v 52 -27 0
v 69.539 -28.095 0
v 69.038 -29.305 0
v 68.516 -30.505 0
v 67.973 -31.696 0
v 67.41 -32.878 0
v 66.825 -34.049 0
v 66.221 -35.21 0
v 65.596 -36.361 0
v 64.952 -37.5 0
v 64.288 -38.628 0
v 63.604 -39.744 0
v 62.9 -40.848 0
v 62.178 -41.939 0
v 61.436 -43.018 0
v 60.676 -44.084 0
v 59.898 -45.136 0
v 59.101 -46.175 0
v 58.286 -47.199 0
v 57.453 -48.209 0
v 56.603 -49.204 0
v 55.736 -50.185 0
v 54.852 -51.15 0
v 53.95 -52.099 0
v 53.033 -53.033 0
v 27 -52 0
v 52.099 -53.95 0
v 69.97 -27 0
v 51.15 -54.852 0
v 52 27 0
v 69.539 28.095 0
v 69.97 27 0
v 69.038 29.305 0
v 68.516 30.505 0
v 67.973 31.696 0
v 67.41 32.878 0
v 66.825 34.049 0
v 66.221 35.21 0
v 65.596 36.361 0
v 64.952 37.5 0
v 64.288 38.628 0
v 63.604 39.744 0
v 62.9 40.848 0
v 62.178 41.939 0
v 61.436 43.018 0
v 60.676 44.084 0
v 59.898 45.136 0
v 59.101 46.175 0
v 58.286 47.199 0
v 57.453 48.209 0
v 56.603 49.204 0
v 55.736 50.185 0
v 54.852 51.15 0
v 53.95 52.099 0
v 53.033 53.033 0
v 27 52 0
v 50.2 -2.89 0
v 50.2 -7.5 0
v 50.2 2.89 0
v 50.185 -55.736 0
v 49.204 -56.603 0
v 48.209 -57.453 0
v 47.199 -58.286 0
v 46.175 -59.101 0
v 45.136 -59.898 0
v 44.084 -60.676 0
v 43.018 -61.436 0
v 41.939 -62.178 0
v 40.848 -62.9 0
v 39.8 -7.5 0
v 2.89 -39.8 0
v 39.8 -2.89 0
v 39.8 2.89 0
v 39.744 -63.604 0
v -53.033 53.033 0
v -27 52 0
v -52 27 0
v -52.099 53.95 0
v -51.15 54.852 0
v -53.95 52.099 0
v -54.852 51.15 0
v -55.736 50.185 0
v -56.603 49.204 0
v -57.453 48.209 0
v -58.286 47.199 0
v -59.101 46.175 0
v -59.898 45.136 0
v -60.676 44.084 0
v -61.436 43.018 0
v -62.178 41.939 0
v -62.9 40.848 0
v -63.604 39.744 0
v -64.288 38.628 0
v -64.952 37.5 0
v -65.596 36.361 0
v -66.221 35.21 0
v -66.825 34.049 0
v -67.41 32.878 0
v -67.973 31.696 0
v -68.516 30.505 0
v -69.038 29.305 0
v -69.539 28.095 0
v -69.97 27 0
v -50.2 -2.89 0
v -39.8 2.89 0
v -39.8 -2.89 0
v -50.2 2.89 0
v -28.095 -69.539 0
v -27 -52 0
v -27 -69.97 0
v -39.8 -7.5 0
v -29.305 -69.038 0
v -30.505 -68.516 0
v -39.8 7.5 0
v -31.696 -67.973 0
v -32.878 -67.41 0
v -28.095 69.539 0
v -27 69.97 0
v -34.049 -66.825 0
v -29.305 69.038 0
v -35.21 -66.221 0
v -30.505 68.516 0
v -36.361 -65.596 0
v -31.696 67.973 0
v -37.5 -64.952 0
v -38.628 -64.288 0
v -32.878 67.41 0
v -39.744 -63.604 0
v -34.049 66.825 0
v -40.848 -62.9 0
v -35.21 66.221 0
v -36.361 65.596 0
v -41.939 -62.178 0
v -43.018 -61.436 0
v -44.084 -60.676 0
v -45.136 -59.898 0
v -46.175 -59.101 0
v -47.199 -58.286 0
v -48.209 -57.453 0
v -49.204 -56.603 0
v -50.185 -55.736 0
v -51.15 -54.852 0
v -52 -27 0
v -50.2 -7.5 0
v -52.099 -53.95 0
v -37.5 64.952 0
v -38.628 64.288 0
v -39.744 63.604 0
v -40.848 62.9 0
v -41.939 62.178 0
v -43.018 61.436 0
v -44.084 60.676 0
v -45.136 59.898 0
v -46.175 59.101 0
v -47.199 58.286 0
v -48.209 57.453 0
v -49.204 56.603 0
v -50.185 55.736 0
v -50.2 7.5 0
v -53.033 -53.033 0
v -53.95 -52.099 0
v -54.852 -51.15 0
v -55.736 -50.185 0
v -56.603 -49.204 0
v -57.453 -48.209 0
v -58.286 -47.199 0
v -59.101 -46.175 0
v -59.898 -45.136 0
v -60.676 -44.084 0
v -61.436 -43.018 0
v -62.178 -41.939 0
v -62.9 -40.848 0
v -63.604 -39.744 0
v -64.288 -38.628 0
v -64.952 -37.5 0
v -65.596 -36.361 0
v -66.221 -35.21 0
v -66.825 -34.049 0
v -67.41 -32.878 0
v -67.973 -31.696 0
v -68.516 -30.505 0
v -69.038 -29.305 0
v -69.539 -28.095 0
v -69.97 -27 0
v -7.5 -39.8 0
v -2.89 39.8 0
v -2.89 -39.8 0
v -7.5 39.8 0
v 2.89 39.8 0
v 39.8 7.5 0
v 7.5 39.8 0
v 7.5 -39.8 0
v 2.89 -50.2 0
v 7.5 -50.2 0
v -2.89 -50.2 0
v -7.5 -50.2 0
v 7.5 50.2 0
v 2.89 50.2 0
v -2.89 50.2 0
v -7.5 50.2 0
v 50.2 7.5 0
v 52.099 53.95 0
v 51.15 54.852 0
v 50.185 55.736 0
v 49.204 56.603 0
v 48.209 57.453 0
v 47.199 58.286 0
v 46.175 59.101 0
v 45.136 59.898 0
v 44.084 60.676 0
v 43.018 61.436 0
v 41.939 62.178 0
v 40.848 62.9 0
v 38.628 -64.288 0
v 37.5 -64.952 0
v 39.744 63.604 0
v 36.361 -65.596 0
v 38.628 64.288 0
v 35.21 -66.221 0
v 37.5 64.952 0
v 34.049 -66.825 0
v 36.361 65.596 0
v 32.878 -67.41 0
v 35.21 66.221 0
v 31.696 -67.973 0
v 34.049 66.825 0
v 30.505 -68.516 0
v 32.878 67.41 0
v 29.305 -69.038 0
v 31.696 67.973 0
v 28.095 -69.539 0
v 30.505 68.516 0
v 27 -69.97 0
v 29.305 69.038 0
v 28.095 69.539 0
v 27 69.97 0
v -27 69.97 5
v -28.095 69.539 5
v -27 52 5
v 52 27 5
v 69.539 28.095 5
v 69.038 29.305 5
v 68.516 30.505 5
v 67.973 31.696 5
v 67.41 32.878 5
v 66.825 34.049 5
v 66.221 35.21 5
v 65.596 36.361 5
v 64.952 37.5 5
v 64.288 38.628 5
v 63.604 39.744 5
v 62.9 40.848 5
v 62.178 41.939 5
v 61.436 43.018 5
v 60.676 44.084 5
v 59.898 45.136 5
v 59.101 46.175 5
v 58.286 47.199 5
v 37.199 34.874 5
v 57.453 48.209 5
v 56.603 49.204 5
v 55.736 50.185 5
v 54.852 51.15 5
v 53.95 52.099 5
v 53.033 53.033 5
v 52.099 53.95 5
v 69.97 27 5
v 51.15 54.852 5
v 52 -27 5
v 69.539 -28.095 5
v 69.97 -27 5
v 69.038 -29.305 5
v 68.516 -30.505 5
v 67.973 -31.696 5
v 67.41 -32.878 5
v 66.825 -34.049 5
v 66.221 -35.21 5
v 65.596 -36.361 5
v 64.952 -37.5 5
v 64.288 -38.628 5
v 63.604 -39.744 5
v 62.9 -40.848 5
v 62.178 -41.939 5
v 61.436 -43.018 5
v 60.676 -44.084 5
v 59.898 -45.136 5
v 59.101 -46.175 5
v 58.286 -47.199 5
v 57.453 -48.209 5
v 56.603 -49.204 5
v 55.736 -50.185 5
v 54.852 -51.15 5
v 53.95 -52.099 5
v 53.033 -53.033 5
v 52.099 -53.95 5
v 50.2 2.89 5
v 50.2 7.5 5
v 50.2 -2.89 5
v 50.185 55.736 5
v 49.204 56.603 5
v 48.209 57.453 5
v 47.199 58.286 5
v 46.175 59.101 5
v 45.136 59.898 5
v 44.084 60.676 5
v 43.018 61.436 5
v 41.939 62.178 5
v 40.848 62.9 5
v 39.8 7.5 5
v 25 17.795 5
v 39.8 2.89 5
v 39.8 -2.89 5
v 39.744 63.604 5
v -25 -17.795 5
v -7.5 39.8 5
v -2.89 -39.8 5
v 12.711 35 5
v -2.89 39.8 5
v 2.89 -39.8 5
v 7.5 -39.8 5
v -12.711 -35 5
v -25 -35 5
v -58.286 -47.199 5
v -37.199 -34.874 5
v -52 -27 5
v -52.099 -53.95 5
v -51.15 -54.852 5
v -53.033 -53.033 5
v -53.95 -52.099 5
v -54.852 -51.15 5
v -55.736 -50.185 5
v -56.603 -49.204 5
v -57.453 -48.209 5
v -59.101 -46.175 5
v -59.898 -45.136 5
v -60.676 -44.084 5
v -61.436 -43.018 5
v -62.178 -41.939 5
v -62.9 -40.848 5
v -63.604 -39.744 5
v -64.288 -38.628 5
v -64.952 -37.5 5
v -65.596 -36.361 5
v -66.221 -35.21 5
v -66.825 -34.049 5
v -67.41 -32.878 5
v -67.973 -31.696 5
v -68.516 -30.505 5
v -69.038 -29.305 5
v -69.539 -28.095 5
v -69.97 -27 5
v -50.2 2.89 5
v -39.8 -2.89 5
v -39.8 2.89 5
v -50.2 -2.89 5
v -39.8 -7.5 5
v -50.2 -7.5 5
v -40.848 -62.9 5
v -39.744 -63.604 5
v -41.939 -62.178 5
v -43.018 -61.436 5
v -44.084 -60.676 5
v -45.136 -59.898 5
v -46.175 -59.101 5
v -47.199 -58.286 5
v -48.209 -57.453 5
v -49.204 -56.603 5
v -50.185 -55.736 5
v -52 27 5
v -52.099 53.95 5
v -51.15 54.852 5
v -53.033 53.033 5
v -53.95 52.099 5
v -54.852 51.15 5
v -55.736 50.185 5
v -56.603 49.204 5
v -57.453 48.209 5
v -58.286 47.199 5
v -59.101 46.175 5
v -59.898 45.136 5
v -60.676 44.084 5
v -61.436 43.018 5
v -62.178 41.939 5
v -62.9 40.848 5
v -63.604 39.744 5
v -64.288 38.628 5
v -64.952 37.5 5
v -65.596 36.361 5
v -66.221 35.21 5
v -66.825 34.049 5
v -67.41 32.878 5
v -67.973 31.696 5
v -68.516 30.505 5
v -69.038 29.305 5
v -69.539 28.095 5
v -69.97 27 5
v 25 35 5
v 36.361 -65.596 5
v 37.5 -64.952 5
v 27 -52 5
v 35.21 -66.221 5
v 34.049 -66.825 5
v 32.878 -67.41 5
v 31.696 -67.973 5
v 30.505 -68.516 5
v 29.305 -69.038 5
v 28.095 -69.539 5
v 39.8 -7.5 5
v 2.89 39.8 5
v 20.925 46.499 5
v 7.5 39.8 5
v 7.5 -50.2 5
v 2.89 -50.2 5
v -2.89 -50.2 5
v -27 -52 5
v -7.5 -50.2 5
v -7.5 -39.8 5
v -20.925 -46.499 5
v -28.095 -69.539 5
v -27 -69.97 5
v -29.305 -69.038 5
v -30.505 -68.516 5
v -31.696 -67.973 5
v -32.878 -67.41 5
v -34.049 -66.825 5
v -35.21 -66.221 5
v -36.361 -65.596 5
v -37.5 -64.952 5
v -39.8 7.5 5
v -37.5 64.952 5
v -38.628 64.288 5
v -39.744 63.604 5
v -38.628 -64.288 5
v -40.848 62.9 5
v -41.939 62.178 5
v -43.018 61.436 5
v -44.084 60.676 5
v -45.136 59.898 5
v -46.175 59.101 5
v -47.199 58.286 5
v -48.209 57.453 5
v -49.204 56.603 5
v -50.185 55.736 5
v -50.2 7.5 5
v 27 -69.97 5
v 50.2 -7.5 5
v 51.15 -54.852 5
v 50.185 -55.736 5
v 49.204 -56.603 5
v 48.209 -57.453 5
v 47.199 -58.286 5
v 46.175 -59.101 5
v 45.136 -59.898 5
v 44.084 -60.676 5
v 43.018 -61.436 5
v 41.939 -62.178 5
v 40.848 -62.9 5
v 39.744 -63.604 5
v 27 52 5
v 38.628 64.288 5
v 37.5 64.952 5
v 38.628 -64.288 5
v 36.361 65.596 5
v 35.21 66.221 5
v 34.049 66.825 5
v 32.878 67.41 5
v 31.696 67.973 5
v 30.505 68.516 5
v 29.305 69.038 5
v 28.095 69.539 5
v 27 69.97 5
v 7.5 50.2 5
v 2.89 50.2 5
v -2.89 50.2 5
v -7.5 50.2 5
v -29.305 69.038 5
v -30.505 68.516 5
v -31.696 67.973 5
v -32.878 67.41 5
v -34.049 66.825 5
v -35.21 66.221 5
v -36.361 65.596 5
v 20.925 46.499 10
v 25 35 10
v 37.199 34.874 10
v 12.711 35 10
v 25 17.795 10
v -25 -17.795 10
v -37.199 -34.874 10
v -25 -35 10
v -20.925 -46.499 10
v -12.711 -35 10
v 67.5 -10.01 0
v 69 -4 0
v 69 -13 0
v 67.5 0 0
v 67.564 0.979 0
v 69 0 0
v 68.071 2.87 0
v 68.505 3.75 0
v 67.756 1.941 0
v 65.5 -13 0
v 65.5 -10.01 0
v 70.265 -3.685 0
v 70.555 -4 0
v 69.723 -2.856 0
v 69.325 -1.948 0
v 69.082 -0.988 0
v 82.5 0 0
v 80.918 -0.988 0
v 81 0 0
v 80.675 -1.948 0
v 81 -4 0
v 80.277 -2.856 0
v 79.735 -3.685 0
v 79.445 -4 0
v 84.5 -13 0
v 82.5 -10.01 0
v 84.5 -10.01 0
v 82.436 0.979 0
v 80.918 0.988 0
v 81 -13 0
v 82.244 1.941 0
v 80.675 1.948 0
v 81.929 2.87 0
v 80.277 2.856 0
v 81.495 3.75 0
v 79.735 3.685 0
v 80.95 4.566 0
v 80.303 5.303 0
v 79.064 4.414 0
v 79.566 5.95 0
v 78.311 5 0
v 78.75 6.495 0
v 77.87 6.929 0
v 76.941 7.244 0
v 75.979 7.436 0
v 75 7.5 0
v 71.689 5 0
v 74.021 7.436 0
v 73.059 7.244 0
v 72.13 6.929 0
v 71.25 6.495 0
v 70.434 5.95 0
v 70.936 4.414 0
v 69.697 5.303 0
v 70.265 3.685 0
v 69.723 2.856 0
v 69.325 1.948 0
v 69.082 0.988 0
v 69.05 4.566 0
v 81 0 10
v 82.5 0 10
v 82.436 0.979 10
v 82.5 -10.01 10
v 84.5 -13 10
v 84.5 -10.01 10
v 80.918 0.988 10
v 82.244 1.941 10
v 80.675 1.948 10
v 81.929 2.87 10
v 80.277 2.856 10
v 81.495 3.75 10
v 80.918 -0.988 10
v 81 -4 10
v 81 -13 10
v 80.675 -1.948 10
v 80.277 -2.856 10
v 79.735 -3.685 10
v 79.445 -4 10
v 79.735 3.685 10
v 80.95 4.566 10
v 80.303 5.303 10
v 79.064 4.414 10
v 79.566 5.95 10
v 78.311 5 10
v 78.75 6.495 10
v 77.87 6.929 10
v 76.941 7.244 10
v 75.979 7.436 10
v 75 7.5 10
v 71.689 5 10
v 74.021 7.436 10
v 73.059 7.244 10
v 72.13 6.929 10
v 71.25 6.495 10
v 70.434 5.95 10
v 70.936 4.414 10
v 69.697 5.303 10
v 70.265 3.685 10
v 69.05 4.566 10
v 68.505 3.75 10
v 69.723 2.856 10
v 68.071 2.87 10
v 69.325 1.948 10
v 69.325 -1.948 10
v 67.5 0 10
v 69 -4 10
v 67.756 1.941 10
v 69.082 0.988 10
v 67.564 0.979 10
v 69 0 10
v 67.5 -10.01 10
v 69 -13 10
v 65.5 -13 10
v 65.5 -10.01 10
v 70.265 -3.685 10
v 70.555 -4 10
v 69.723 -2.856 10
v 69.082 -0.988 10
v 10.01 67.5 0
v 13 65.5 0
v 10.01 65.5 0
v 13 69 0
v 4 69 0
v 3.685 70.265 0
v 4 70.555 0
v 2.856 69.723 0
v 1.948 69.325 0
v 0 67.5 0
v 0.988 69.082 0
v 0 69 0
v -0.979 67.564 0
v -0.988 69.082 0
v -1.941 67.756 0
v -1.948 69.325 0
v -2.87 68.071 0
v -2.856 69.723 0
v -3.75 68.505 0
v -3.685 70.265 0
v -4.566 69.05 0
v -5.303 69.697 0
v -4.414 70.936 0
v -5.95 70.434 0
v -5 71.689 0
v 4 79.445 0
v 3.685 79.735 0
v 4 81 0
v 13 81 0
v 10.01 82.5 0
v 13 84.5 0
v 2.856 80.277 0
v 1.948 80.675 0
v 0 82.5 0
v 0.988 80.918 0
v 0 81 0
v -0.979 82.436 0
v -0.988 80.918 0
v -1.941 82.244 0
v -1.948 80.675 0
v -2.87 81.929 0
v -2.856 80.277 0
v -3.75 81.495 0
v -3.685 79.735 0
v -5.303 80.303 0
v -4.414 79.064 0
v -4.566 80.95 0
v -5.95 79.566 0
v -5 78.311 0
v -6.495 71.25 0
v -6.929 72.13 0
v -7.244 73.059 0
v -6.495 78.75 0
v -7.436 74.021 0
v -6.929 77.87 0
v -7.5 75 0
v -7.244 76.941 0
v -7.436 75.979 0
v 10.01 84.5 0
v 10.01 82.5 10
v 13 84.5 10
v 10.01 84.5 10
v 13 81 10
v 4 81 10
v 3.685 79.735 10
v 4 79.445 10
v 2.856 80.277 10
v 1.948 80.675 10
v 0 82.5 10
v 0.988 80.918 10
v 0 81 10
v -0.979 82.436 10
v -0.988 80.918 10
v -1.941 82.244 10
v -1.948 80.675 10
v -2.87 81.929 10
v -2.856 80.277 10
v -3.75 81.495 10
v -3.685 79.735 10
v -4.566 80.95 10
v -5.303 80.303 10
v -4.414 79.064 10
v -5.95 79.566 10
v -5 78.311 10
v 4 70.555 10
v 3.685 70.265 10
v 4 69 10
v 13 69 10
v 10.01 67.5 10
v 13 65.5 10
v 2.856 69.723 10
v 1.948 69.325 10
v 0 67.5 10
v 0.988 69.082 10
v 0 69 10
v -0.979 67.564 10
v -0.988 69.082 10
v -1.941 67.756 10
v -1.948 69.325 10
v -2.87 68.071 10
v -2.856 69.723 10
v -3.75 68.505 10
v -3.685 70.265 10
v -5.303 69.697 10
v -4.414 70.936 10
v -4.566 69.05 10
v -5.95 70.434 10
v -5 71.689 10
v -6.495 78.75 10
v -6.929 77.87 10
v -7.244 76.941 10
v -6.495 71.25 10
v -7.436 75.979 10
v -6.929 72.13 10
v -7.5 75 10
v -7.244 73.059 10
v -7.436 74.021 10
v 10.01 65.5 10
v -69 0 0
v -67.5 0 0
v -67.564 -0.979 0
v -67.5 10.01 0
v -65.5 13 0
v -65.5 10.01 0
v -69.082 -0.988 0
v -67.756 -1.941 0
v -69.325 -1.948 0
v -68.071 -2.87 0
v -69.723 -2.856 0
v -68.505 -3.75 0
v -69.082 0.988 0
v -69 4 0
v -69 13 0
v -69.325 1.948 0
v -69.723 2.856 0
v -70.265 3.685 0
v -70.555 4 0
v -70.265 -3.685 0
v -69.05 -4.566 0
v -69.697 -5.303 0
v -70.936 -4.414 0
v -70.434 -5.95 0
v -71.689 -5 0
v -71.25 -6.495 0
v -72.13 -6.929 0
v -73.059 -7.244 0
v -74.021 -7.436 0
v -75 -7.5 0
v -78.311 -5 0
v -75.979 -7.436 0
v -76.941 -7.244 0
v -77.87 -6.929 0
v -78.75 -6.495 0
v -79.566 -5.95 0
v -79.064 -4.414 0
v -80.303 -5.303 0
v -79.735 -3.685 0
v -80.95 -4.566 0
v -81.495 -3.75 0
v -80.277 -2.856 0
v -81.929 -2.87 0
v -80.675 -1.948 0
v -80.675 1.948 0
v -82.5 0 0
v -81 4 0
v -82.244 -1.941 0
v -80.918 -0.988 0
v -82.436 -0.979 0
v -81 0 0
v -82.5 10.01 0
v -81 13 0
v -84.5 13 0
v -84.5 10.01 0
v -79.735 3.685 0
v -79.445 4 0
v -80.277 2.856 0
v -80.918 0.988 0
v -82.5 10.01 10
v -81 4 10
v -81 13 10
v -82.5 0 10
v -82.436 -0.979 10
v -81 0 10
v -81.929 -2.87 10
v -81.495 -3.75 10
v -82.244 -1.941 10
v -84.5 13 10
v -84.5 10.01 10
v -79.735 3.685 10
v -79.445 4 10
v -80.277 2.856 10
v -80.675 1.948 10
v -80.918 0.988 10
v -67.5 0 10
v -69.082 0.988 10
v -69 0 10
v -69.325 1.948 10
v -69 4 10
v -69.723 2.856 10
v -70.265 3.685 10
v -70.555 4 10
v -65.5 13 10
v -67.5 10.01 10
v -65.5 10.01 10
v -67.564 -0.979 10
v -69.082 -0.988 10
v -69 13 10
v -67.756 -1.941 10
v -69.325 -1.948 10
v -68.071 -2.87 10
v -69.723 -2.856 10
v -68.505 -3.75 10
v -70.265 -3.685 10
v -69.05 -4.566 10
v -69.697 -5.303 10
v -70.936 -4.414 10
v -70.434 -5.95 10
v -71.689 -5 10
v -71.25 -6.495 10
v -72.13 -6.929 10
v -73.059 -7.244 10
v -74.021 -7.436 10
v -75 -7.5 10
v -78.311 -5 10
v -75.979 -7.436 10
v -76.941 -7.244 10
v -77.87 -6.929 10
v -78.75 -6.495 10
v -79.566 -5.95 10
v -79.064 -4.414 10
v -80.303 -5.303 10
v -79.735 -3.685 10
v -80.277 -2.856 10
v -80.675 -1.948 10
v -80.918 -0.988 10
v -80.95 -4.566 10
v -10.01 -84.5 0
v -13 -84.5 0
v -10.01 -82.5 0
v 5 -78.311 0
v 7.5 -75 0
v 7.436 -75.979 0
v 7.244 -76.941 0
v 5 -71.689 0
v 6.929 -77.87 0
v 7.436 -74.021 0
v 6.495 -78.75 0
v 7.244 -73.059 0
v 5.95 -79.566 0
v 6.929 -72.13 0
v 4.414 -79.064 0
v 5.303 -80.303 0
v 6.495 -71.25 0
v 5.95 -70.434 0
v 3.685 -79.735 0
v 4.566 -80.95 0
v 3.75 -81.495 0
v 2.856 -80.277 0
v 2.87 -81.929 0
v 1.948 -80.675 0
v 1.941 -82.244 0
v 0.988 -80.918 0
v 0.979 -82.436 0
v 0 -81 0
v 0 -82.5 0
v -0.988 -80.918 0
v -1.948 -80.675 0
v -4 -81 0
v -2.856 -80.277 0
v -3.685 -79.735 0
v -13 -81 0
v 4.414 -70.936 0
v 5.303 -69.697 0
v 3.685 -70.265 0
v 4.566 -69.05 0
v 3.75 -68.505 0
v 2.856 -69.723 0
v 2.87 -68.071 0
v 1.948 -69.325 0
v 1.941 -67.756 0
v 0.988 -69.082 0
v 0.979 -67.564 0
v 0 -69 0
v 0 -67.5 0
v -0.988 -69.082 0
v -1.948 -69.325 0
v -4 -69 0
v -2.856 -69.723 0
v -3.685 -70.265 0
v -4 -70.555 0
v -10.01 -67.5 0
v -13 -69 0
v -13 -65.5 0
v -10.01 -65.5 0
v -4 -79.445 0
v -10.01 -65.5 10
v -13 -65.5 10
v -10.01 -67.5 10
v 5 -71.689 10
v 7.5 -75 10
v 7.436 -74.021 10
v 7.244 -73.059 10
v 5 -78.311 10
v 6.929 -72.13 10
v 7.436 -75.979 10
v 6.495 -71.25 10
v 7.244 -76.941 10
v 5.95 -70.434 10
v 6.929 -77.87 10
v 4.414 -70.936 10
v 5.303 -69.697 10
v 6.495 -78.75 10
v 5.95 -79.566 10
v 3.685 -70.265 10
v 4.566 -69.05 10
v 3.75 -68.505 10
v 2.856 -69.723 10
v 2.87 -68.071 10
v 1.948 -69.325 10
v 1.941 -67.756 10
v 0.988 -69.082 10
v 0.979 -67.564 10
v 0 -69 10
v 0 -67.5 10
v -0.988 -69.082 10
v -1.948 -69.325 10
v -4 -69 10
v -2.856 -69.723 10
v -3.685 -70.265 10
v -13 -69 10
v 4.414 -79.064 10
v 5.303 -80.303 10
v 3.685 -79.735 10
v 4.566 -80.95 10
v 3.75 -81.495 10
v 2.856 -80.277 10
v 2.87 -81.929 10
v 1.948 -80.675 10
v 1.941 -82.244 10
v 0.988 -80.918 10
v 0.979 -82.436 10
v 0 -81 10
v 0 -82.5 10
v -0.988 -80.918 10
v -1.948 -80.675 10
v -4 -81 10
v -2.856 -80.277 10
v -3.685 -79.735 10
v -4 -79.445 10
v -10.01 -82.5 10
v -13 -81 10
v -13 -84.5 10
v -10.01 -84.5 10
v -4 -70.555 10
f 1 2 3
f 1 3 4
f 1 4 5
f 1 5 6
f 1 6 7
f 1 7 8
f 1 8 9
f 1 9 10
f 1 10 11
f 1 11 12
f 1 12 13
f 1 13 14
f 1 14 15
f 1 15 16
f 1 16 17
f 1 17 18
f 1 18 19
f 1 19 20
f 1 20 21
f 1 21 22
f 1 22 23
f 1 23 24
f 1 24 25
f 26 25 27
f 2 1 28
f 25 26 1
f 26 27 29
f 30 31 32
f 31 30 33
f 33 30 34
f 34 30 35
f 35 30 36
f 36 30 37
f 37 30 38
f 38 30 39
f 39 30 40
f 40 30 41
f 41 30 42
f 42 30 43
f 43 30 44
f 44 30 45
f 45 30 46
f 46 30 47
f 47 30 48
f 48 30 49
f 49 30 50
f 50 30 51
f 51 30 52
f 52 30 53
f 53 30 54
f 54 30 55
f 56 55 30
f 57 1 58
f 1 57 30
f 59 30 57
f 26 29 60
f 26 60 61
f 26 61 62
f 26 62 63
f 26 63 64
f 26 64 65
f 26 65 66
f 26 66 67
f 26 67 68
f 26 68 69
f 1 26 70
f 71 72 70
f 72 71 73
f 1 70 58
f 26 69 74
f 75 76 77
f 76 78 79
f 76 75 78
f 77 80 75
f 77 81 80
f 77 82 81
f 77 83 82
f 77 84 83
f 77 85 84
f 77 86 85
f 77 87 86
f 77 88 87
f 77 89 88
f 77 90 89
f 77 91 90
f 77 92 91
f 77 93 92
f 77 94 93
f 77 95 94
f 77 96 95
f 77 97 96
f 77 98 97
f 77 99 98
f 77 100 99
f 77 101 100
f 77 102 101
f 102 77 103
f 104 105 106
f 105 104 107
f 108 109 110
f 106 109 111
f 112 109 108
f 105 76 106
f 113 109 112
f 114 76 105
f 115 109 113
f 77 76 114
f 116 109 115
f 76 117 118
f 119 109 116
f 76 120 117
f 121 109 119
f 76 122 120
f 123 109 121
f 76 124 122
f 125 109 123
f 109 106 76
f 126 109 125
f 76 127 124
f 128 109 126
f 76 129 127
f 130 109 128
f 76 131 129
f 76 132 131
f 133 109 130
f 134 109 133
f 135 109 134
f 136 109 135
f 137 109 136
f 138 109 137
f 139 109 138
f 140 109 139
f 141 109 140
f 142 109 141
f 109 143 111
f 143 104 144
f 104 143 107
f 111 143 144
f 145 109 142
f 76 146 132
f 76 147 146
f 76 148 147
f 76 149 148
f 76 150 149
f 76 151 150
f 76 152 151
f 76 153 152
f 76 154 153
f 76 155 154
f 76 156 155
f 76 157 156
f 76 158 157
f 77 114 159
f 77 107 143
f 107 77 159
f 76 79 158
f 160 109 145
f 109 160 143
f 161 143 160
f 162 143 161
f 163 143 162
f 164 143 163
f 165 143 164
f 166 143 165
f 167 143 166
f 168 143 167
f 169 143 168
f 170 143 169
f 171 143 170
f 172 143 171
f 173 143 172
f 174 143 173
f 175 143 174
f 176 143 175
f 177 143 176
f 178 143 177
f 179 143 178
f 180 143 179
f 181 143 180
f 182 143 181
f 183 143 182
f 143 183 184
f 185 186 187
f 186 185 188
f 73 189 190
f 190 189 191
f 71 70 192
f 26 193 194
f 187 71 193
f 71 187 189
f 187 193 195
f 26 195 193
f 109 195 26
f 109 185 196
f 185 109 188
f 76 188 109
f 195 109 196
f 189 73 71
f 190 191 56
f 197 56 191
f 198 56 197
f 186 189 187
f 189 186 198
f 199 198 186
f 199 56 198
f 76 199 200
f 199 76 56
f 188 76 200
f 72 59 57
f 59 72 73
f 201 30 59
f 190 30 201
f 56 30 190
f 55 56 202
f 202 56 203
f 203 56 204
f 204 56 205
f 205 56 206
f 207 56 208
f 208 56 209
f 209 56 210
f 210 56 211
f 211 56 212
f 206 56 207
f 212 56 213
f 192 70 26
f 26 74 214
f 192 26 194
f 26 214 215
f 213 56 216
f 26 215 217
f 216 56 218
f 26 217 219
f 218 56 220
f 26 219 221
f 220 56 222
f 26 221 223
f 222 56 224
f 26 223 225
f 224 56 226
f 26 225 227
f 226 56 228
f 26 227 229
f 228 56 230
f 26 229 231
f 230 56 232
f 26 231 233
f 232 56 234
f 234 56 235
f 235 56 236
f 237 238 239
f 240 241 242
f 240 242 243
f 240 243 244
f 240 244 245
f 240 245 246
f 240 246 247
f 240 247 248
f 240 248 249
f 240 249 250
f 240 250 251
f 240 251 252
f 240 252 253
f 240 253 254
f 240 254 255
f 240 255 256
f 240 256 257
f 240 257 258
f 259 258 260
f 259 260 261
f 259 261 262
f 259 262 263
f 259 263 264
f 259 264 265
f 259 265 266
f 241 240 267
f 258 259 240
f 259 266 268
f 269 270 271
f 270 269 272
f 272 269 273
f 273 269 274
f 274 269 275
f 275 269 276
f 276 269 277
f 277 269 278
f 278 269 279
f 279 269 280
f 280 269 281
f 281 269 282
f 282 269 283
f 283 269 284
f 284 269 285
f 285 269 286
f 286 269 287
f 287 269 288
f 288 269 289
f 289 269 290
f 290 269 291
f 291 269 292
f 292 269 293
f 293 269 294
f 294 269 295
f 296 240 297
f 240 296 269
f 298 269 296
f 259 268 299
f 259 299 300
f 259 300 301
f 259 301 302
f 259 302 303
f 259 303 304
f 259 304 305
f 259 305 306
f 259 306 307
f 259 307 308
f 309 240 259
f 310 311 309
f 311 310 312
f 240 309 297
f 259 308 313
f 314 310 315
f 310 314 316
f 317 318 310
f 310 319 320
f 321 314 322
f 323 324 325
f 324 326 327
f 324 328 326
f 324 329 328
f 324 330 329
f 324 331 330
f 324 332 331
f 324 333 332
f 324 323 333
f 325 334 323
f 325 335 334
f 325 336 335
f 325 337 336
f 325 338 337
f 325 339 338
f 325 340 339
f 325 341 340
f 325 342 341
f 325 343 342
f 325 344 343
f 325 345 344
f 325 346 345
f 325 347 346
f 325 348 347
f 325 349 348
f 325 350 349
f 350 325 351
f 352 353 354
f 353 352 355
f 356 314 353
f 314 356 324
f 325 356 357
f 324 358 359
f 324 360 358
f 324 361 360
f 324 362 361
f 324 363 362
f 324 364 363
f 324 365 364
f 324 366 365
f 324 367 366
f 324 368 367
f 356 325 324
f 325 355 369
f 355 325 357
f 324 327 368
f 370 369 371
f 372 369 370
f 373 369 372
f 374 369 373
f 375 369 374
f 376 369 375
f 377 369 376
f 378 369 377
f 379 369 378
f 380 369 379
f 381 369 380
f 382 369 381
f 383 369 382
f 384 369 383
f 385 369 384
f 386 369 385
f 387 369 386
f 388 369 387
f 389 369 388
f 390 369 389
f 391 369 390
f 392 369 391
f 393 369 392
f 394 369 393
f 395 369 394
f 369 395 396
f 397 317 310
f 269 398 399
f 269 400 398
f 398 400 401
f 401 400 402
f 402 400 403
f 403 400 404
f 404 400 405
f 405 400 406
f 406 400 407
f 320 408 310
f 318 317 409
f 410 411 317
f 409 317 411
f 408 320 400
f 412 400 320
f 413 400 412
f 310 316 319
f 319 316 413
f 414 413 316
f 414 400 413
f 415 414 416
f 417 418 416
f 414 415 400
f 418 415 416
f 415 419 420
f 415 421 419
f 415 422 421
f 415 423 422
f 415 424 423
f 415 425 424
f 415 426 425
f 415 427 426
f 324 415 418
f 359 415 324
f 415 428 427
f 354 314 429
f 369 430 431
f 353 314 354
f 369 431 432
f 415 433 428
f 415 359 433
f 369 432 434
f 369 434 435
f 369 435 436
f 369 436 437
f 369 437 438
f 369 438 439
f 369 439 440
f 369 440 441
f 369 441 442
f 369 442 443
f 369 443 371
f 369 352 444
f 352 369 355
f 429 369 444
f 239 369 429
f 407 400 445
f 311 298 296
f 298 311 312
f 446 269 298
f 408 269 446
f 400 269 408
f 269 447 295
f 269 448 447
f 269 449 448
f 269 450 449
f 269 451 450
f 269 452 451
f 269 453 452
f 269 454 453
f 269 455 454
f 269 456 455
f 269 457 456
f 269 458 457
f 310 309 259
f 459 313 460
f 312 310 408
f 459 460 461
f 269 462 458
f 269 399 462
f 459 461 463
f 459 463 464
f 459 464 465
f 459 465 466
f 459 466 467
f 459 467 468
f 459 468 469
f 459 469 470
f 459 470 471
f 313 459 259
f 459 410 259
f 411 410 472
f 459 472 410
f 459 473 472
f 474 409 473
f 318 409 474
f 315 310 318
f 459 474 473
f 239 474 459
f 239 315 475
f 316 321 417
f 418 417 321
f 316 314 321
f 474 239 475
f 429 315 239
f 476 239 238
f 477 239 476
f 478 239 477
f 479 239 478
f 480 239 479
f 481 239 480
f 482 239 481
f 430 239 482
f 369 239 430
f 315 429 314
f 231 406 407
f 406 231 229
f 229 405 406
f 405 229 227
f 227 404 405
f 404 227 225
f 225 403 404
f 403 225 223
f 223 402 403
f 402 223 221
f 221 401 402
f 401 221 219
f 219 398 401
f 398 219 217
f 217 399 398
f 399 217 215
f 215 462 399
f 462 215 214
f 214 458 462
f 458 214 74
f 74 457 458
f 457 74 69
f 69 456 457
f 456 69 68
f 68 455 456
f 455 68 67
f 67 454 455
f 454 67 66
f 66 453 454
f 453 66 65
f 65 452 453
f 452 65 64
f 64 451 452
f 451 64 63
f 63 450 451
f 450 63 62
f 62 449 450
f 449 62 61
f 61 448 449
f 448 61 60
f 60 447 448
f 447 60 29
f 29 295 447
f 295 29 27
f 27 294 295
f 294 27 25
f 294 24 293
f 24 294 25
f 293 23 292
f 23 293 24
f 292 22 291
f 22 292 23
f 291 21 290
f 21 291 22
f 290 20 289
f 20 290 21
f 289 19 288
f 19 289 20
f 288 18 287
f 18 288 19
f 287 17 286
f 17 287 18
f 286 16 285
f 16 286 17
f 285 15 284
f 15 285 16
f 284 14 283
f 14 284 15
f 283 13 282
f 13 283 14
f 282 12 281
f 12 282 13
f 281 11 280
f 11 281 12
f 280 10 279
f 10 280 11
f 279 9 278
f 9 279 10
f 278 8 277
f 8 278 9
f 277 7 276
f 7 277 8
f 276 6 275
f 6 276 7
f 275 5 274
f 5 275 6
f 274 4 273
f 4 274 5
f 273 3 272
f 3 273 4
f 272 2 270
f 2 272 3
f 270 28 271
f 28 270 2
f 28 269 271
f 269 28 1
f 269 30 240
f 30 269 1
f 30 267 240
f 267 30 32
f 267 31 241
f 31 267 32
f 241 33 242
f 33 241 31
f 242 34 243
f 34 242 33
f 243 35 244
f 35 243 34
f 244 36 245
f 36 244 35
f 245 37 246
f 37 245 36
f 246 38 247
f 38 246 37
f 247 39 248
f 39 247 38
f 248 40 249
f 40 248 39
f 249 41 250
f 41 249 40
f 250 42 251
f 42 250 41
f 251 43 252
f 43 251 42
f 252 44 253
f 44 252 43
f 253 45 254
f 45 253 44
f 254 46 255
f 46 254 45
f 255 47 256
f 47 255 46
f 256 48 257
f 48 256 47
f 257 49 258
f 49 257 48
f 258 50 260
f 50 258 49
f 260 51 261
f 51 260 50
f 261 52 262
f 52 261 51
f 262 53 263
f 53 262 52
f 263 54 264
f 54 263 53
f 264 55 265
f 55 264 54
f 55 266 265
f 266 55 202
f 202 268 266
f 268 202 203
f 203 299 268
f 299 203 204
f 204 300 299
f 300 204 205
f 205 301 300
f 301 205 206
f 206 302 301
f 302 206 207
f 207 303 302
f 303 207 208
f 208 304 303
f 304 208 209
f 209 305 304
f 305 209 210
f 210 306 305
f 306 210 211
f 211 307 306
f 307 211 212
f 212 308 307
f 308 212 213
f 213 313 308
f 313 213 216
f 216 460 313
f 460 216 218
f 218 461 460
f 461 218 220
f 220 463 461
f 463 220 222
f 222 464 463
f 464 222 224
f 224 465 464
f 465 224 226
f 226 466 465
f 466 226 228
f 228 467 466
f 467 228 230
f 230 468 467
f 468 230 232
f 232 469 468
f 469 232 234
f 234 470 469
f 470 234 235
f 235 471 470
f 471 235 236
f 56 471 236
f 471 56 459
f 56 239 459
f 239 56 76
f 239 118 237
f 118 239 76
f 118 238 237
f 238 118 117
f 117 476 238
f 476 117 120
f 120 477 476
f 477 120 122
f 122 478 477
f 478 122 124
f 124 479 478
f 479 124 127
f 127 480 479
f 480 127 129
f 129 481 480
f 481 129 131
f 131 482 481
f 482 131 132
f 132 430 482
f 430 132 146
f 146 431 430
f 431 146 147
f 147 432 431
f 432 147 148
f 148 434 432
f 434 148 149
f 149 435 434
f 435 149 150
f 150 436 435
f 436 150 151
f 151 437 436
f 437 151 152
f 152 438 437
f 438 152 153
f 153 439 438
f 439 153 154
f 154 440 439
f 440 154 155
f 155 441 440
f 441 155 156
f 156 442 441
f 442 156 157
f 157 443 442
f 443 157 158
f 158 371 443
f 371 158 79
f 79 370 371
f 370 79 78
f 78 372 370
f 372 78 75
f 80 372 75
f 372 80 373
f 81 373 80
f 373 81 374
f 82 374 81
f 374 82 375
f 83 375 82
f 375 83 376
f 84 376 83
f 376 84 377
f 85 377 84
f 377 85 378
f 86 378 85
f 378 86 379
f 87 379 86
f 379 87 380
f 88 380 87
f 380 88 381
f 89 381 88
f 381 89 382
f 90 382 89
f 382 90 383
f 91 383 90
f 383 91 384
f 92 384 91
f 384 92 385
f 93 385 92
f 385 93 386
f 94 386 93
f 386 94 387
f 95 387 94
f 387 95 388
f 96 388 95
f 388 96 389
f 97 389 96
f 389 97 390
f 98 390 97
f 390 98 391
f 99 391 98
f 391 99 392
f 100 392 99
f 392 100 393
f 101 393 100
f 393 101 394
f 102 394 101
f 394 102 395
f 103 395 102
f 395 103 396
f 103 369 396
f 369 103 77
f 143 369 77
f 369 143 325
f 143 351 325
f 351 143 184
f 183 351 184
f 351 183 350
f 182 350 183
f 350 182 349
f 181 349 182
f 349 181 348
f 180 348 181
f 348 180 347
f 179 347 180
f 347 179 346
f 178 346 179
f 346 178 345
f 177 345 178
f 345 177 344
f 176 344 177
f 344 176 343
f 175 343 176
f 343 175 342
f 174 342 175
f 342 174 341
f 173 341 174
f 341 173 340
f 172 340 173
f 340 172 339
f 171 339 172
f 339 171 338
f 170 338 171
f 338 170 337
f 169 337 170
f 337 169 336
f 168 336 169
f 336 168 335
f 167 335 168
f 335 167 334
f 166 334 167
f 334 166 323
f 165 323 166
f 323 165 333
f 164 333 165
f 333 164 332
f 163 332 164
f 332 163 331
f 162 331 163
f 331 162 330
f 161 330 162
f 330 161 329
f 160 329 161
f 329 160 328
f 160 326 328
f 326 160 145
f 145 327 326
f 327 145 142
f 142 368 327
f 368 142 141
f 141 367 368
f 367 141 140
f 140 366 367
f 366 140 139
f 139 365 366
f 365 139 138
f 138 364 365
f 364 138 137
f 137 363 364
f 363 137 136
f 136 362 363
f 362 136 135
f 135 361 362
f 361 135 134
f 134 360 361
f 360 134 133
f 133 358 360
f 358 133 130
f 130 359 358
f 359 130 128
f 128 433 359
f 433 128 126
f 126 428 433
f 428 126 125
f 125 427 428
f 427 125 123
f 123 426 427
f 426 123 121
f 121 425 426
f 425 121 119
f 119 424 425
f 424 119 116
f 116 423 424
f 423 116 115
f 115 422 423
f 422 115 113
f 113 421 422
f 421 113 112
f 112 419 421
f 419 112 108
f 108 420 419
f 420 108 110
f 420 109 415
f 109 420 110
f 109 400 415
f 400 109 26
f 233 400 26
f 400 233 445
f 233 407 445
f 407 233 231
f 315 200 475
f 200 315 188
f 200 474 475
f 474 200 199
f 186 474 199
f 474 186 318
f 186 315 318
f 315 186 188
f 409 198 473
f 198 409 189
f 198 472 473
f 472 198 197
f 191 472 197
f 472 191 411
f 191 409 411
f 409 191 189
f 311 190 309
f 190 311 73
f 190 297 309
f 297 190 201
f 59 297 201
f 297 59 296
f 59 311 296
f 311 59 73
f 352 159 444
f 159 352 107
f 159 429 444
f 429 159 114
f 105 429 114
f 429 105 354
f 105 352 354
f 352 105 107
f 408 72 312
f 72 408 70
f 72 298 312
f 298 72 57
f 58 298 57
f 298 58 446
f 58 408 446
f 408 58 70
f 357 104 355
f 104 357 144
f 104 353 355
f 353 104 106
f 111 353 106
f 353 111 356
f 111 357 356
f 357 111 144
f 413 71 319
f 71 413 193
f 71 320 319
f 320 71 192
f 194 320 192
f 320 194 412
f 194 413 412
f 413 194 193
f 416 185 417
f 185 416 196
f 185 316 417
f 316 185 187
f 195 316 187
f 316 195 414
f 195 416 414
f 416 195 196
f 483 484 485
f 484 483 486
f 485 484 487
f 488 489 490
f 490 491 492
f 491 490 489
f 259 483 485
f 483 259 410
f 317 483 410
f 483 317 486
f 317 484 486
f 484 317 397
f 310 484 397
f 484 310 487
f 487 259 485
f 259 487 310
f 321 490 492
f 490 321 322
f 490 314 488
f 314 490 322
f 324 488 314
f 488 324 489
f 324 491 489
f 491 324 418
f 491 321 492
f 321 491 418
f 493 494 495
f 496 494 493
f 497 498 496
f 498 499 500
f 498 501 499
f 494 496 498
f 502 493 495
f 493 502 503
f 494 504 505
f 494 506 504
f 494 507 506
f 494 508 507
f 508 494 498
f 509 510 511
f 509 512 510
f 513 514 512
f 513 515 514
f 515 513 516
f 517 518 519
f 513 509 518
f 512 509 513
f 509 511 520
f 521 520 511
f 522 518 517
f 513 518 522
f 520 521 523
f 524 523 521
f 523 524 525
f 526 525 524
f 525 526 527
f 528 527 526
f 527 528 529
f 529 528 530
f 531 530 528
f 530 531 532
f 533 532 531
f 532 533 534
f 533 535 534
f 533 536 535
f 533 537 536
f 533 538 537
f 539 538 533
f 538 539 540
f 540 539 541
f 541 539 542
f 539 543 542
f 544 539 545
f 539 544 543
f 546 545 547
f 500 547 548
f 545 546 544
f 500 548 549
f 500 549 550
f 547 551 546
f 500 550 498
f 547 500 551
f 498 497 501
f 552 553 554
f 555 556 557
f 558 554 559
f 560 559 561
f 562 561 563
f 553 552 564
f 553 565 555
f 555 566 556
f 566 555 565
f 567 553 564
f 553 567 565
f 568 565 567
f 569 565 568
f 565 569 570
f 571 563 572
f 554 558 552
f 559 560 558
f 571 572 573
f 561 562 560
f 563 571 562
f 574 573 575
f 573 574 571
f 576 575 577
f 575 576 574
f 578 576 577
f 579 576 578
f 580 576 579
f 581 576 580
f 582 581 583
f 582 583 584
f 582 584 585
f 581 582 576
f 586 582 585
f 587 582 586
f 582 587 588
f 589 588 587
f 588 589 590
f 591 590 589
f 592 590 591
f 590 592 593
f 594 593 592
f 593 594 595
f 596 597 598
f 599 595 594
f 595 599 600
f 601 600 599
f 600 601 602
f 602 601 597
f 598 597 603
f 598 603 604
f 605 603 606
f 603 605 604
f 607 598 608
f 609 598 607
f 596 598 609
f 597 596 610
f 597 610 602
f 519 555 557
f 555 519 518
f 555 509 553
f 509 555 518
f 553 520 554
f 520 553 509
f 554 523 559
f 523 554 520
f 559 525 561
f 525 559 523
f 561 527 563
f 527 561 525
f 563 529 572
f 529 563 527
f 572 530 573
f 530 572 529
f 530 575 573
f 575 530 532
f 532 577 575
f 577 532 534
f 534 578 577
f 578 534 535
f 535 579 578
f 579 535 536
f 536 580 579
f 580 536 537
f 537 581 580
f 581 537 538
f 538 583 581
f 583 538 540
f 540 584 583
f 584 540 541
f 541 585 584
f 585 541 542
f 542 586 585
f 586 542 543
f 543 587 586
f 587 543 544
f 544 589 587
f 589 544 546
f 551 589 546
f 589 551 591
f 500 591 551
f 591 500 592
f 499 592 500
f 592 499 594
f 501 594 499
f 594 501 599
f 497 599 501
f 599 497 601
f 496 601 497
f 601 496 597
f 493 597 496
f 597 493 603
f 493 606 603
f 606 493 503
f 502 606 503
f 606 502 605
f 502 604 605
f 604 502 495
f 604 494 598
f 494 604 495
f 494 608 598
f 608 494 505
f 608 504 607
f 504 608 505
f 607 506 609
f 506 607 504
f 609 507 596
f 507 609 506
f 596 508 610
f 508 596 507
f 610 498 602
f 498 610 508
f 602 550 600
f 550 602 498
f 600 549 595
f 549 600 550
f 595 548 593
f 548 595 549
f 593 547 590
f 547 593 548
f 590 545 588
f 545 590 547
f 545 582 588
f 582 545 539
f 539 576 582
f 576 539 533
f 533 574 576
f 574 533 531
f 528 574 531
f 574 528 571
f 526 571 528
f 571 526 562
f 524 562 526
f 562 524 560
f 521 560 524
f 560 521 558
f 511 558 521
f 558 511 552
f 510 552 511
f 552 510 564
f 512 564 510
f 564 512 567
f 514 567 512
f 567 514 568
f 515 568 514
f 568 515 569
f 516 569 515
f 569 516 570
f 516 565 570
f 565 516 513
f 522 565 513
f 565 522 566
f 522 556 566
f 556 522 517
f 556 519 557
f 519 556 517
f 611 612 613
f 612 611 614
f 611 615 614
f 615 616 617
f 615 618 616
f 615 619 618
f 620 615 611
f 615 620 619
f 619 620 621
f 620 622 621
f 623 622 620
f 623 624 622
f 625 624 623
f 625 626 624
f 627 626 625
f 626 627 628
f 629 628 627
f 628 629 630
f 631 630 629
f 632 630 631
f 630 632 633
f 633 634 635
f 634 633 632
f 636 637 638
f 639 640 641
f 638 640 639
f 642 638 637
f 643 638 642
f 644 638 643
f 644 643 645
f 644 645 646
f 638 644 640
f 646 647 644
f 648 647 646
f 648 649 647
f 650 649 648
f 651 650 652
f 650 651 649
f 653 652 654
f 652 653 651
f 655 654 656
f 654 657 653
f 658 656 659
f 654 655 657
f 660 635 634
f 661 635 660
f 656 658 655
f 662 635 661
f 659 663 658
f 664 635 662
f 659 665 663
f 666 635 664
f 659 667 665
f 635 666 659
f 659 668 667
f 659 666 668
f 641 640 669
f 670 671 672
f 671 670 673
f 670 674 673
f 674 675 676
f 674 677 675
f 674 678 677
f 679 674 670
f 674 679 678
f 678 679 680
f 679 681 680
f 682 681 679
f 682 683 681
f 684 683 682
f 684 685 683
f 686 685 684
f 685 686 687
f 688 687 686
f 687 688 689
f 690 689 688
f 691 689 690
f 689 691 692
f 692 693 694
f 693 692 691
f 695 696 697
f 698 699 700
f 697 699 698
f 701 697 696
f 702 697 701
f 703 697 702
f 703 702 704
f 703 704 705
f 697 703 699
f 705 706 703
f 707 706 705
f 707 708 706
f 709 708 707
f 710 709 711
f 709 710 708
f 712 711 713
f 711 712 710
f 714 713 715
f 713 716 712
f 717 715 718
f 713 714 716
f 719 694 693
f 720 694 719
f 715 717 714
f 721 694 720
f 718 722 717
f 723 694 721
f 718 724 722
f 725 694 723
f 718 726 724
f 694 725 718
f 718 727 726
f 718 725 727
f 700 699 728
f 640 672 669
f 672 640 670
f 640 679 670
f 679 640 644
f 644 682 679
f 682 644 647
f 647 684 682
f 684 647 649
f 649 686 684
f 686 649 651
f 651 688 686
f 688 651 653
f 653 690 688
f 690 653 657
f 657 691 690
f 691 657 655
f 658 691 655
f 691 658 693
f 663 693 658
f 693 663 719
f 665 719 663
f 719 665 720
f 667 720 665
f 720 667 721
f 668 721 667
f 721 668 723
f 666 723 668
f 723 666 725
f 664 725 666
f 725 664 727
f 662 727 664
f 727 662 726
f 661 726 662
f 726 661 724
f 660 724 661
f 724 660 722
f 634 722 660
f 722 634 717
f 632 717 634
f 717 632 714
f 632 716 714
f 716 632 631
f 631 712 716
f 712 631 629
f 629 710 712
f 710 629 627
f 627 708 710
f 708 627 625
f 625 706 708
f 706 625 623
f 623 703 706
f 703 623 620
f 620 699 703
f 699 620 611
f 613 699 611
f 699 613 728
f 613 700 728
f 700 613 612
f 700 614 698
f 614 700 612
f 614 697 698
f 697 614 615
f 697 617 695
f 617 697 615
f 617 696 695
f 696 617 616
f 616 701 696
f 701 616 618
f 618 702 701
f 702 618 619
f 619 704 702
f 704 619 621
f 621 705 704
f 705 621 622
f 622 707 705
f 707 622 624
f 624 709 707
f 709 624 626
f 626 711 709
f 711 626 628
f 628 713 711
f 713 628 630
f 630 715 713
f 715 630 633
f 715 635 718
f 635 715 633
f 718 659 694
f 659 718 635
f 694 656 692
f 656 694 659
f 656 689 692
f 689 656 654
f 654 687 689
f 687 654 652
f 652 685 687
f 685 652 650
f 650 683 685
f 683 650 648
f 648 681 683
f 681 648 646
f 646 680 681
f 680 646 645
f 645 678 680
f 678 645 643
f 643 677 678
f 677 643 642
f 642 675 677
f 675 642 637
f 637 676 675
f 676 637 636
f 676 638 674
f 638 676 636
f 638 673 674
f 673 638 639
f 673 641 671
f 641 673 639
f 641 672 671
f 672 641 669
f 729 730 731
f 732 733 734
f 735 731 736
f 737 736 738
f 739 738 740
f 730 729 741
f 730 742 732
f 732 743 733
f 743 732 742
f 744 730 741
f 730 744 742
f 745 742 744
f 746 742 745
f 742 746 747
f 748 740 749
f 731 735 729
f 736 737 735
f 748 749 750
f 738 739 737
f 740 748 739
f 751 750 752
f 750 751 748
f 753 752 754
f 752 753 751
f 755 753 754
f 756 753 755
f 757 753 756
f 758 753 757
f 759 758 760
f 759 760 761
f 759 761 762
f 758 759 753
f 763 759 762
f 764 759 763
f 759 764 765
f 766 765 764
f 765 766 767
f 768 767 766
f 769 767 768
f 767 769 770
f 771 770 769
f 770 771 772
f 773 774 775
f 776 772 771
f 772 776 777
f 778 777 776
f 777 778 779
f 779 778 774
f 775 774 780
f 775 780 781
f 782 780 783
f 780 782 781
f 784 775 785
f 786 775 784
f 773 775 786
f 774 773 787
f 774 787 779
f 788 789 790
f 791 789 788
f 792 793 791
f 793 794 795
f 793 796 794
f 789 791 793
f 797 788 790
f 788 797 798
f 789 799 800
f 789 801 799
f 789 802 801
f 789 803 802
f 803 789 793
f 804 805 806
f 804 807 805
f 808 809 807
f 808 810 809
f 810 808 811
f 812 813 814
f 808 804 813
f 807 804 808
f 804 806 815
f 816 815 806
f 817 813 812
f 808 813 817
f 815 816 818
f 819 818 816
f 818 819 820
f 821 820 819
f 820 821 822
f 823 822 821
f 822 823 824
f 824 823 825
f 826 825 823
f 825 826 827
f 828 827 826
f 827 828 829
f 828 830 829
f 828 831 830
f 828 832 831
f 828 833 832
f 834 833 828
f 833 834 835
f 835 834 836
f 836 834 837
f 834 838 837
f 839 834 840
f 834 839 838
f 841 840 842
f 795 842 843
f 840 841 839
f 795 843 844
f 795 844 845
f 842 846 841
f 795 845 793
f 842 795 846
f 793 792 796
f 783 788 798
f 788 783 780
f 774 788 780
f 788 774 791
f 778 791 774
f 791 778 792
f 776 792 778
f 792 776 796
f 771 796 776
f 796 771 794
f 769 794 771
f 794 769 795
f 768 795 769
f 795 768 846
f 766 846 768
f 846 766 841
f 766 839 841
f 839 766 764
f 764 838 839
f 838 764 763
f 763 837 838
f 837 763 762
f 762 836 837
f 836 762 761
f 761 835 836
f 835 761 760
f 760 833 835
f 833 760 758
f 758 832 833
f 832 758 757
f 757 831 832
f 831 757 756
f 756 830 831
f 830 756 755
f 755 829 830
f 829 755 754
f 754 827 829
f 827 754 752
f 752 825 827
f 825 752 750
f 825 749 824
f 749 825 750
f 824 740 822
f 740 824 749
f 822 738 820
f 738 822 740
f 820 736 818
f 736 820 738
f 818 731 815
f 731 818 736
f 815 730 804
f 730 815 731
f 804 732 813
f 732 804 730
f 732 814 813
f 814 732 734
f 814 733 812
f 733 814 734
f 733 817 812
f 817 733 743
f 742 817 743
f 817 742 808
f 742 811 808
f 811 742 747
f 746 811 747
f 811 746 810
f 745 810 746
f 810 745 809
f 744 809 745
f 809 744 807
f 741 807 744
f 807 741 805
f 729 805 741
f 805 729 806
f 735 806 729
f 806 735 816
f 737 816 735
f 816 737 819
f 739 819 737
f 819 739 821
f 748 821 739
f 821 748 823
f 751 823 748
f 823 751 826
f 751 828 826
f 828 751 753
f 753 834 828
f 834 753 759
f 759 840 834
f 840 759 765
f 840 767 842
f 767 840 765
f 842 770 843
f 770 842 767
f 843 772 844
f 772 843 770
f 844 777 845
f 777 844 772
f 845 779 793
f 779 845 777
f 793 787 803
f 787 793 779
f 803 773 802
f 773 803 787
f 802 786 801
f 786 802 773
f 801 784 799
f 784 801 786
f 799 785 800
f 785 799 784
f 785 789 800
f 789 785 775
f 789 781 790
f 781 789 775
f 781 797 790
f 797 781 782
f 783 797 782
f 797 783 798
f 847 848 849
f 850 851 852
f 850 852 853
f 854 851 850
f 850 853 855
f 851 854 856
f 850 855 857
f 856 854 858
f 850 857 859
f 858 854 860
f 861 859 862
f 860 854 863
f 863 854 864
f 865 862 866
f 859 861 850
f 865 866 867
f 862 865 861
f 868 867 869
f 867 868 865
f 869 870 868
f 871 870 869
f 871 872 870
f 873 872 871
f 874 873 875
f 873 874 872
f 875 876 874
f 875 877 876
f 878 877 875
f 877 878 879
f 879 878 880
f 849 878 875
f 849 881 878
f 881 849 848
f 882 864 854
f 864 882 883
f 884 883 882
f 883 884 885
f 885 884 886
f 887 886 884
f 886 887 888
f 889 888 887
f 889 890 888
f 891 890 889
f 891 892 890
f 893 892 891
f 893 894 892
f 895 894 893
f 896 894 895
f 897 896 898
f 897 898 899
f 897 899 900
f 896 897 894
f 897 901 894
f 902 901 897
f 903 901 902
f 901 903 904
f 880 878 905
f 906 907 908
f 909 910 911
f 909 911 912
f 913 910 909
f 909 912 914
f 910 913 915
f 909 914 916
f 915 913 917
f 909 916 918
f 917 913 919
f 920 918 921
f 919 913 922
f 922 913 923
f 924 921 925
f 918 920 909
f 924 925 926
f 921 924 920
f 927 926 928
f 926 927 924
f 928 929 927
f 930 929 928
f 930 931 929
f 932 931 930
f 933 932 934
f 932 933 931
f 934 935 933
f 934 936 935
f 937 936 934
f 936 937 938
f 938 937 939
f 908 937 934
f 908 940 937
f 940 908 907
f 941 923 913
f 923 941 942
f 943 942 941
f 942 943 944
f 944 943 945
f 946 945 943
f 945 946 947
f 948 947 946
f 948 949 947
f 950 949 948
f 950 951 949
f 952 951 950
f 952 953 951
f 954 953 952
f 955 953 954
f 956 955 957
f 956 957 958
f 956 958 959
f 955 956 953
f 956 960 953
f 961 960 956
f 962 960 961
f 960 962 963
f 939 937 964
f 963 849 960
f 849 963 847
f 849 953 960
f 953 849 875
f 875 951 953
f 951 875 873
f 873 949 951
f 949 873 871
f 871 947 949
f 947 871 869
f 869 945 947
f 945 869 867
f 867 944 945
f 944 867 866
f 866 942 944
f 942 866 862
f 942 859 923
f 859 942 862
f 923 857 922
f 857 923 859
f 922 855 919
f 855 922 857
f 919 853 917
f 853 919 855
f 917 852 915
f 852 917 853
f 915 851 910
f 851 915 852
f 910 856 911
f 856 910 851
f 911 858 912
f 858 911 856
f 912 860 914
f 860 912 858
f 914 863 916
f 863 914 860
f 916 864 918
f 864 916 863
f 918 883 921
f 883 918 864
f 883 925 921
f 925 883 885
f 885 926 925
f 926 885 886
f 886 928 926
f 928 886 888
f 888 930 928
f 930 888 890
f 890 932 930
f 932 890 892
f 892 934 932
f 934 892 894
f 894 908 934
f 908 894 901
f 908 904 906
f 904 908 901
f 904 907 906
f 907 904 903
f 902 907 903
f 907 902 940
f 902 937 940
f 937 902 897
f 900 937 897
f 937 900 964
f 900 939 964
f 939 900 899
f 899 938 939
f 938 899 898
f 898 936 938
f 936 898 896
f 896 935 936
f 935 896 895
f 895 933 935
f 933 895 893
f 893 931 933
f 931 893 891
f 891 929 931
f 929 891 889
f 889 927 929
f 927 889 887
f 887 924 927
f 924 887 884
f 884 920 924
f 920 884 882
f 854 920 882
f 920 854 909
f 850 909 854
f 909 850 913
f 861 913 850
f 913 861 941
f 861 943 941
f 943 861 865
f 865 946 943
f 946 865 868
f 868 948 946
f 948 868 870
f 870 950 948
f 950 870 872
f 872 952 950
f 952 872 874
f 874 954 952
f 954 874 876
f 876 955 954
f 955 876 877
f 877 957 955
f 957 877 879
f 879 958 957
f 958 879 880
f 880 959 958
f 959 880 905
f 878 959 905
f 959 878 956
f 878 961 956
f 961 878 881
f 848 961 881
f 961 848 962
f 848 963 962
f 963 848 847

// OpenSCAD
// file: lib/arc.scad
/*
r: radius
b: thickness
t: theta
*/
module arc(r,b,t){
	//$fs=b*.2;
	a=(r+b)*2;
	rot=function(t)[cos(t)*a,sin(t)*a];
	intersection(){
		difference(){circle(r+b/2);circle(r-b/2);}
		polygon([
			for(i=[0:floor(abs(t)/120)])rot(120*i*sign(t)),
			rot(t),[0,0]
		]);
	}
}

// distance arc
module darc(d,b,t){
	//$fs=b*.2;
	r=sqrt(d*d/(2*(1-cos(t))));
	if(r!=1/0) translate([d,0])rotate((180-abs(t))/2*sign(t))translate([-r,0])arc(r,b,t);
	else translate([0,-b/2])square([d,b]);
	//circle(d=b);
	//translate([d,0])circle(d=b,$fs=b*.2);
}
// file: omni2.scad
include <lib/fn.scad>;
include <lib/arc.scad>;
$fa=1;$fs=1;

d=50;n=5;
roller_arc_ratio=.55;
roller_r_max=10.5/2;
roller_shaft_r=1.75/2;// d=1.75mm filament
roller_shaft_r_asobi=.4;
plate2floor=1;
roller_gap_x=1;
roller_gap_y=.3;
shaft_snap_l=2.5;
shaft_snap_asobi=.15;

hub_d_out=20;
hub_d_in=17;
hub_gap=.5;
hub_key=1.5;
hub_key_asobi=.1;
hub_spoke=.5;
hub_shaft_scale=1.07;


rot=smoothstep(0,.9,$t)*-360;
print=$preview?smoothstep(.3,.9,$t):1;

roller_r_min=roller_r_max-(1-sin(90-180/n*roller_arc_ratio))*d/2;
roller_h=sin(180/n*roller_arc_ratio)*d;
echo(min=roller_r_min);
//assert(roller_r_max*.55<=roller_r_min);

module shaft2d(hane){
	intersection(){
		circle(d=3,$fn=32);
		translate([.5,0])square([3,3],center=true);
	}
	if(hane)translate([-1+.2/2,0])square([.2,3.5],center=true);
}
module motor(){
	linear_extrude(4)shaft2d();
	scale(-1){
		linear_extrude(1)circle(d=4);
		translate([0,0,1])linear_extrude(9.15)square([12,10],center=true);
		translate([0,0,10.15])linear_extrude(15.1)intersection(){circle(d=12);square([12,10],center=true);}
	}
}

%motor();


module r2d(dr=0,dh=0,shaft=roller_shaft_r+roller_shaft_r_asobi){
	l=4;
	_d=d+dr*2;
	ta=asin((roller_h+dh*2)/_d);
	polygon([
		[shaft,sin(ta)*-_d/2],
		for(i=[-l:l])let(t=i/l*ta)[cos(t)*_d/2-d/2+roller_r_max,sin(t)*_d/2],
		[shaft,sin(ta)*_d/2]
	]);
}
module r2d2(dr=0,dh=0){r2d(dr,dh,-.01);scale(-1)r2d(dr,dh,0);}
module roller(){
	translate([0,0,mix(0,roller_h/2,print)])
	rotate([mix(90,0,print),0,0]){
		rotate_extrude()r2d();
		%rotate_extrude()r2d(.5);
	}
}

module p2d(wire){intersection(){
	difference(){
		circle(r=d/2-plate2floor);
		for(i=[0:n-1]){
			rotate(360*(i+.5)/n)translate([d/2-roller_r_max,0])r2d2(roller_gap_x,roller_gap_y);
		}
	}
}}
module plate(){
	difference(){
		union(){
			intersection(){
				linear_extrude(roller_r_min+roller_shaft_r*sqrt(3)/2)p2d(0);
				rotate_extrude(){
					translate([d/2-roller_r_max,roller_r_min])circle(r=roller_r_max,$fn=4);
					square([d/2-roller_r_max,roller_r_min*2]);
				}
			}
			linear_extrude(roller_r_min+roller_r_max)circle(r=d/2-roller_r_max*2-roller_gap_x);
		}
		// hub key
		translate([0,0,-.05/2])linear_extrude(roller_r_min+roller_r_max+.05,twist=90/n){
			circle(d=hub_d_out);
			rotate(180/n)translate([-(hub_d_out/2+hub_key/2),0])square(hub_key+hub_key_asobi*2,center=true);
		}
		// shaft
		translate([0,0,roller_r_min])for(i=[0:n-1])
			rotate(360*(i+.5)/n)translate([d/2-roller_r_max,0,0])
				rotate([90,0,0])cylinder(r=roller_shaft_r+shaft_snap_asobi,h=roller_h+(roller_gap_y+shaft_snap_l)*2,center=true,$fn=16);
	}
}

module hub(){
	linear_extrude((roller_r_min+roller_r_max)*2,twist=180/n)difference(){
		union(){
			circle(d=hub_d_out);
			translate([-hub_d_out/2,0])square([hub_key*2,hub_key],center=true);
		}
		circle(d=hub_d_in);
		rotate(45/n)translate([hub_d_in/2-1,-hub_gap/2])square([2+(hub_d_out-hub_d_in)/2,hub_gap]);
	}
	linear_extrude(roller_r_min+roller_r_max)difference(){
		union(){
			circle(3);
			for(i=[0:n-1])rotate(360*(i+.5)/n)translate([3-hub_spoke/2,-hub_spoke/2])darc(hub_d_in/2-3+hub_spoke,hub_spoke,180,cap=true);
		}
		scale(hub_shaft_scale)shaft2d(1);
		translate([0,-hub_gap/2])square([3,hub_gap]);
	}
}

module omni_main(){
	rotate(rot){
		for(i=[0:2-1])
			rotate([mix(180*i,0,print),0,mix(180/n*i,0,print)])
			translate([mix(0,-d/2,print),mix(0,(i+.5)*d,print),mix(-(roller_r_max+roller_r_min),0,print)])
			plate();
		for(i=[0:2*n-1])let(j=floor(i/n),k=i%n)
			rotate(mix(360/n*(k+.5*(j+1)),0,print))
			translate([mix(d/2-roller_r_max,roller_r_max,print),mix(0,roller_r_max*2.5*(i+.5),print),mix((j*2-1)*roller_r_max,0,print)])
			roller();
		rotate([mix(180,0,print),0,0])
			translate([mix(0,-(hub_d_out/2+hub_key),print),mix(0,-(hub_d_out/2+hub_key),print),(roller_r_min+roller_r_max)*mix(-1,0,print)])
			hub();
	}
}

module omni_bb_2d(p=0){
	translate([-p,-(d+2*p)/2])square([4*roller_r_max+2*p,d+2*p]);
}
module omni_ph(flip_motor=0){
	rotate([0,90,0]){
		cylinder(d=d+2,h=4*roller_r_max);
		translate([0,0,2*roller_r_max])rotate([flip_motor?180:0,0,90])motor();
	}
}

module jigu(){
	linear_extrude(roller_h+shaft_snap_l*2+roller_gap_y)difference(){
		square(5,center=true);
		circle(roller_shaft_r+roller_shaft_r_asobi);
	}
	linear_extrude(roller_h)translate([0,5/2])difference(){
		translate([-5/2,0])square([5,19]);
		translate([-3/2,(19-17)/2])square([3,17]);
	}
}

omni_main();
//jigu();
// file: lib/fn.scad
// from glsl
clamp=function(x,a,b)min(max(x,a),b);
saturate=function(x)clamp(x,0,1);
mix=function(a,b,x)a*(1-x)+b*x;
smoothstep=function(a,b,x)let(x=saturate((x-a)/(b-a)))x*x*(3-2*x);

// rad deg conv
r2d=function(x)x/PI*180;
d2r=function(x)x*PI/180;
// rad fn
_sin=function(x)sin(r2d(x));
_cos=function(x)cos(r2d(x));
_tan=function(x)tan(r2d(x));
_atan=function(x)d2r(atan(x));

rot=function(p,t)let(s=_sin(t),c=_cos(t))[c*p.x-s*p.y,s*p.x+c*p.y];

module skew(xy=0,xz=0,yx=0,yz=0,zx=0,zy=0){
	matrix=[
		[1,tan(xy),tan(xz),0],
		[tan(yx),1,tan(yz),0],
		[tan(zx),tan(zy),1,0],
		[0,0,0,1]
	];
	multmatrix(matrix)
	children();
}
// main file
include <lib/fn.scad>
use <omni2.scad>
$fa=1;$fs=1;
print=$preview?smoothstep(.3,.9,$t):1;

batt=[50,70];
motor=[12,10];
thick=5;
tome_d=15;
tome_h=10;
tome_h_asobi=.4;
tome_o=30;
d=150;
tome_tip=[2,3];

module tomegu(t=thick){
	tip=[2,3];
	
	difference(){
		union(){
			circle(d=tome_d);
			translate([tome_d/2,0,0])scale(-1)square([tome_d,motor.y/2+t+tip.y]);
			translate([-tome_d/2-tip.x,-(motor.y/2+t+tip.y)])square([tome_d+tip.x*2,tip.y-.01]);
		}
		intersection(){
			circle(d=motor.x);
			square(motor,center=true);
		}
		translate([motor.x/2,-motor.y/2*.8,0])scale(-1)square([motor.x,tome_d]);
	}
}


translate([0,0,mix(-thick-10/2,0,print)]){
	linear_extrude(thick)difference(){
		circle(d=d);
		for(i=[0:4-1])rotate(360/4*i){
			translate([d/2,0]){
				scale(-1)omni_bb_2d(2);
				translate([-tome_o,0]){
					s=[tome_h+tome_h_asobi,sqrt(((tome_d-motor.x)/2+tome_tip.x)^2+tome_tip.y^2)];
					translate([-s.x/2,-tome_d/2])square(s);
					scale([1,-1])translate([-s.x/2,-tome_d/2])square(s);
				}
			}
		}
	}
	translate([0,0,thick])linear_extrude(5)difference(){
		rotate(atan(batt.y/batt.x))square([100,20],center=true);
		square(batt,center=true);
	}
}


for(i=[0:4-1])rotate(360/4*i){
	translate([mix(d/2-tome_o-tome_h/2,d/2,print),0,0])rotate([mix(90,0,print),0,mix(90,0,print)])linear_extrude(tome_h)tomegu();

	translate([d/2,0])scale(-1)%omni_ph($fn=16,flip_motor=true);
}
